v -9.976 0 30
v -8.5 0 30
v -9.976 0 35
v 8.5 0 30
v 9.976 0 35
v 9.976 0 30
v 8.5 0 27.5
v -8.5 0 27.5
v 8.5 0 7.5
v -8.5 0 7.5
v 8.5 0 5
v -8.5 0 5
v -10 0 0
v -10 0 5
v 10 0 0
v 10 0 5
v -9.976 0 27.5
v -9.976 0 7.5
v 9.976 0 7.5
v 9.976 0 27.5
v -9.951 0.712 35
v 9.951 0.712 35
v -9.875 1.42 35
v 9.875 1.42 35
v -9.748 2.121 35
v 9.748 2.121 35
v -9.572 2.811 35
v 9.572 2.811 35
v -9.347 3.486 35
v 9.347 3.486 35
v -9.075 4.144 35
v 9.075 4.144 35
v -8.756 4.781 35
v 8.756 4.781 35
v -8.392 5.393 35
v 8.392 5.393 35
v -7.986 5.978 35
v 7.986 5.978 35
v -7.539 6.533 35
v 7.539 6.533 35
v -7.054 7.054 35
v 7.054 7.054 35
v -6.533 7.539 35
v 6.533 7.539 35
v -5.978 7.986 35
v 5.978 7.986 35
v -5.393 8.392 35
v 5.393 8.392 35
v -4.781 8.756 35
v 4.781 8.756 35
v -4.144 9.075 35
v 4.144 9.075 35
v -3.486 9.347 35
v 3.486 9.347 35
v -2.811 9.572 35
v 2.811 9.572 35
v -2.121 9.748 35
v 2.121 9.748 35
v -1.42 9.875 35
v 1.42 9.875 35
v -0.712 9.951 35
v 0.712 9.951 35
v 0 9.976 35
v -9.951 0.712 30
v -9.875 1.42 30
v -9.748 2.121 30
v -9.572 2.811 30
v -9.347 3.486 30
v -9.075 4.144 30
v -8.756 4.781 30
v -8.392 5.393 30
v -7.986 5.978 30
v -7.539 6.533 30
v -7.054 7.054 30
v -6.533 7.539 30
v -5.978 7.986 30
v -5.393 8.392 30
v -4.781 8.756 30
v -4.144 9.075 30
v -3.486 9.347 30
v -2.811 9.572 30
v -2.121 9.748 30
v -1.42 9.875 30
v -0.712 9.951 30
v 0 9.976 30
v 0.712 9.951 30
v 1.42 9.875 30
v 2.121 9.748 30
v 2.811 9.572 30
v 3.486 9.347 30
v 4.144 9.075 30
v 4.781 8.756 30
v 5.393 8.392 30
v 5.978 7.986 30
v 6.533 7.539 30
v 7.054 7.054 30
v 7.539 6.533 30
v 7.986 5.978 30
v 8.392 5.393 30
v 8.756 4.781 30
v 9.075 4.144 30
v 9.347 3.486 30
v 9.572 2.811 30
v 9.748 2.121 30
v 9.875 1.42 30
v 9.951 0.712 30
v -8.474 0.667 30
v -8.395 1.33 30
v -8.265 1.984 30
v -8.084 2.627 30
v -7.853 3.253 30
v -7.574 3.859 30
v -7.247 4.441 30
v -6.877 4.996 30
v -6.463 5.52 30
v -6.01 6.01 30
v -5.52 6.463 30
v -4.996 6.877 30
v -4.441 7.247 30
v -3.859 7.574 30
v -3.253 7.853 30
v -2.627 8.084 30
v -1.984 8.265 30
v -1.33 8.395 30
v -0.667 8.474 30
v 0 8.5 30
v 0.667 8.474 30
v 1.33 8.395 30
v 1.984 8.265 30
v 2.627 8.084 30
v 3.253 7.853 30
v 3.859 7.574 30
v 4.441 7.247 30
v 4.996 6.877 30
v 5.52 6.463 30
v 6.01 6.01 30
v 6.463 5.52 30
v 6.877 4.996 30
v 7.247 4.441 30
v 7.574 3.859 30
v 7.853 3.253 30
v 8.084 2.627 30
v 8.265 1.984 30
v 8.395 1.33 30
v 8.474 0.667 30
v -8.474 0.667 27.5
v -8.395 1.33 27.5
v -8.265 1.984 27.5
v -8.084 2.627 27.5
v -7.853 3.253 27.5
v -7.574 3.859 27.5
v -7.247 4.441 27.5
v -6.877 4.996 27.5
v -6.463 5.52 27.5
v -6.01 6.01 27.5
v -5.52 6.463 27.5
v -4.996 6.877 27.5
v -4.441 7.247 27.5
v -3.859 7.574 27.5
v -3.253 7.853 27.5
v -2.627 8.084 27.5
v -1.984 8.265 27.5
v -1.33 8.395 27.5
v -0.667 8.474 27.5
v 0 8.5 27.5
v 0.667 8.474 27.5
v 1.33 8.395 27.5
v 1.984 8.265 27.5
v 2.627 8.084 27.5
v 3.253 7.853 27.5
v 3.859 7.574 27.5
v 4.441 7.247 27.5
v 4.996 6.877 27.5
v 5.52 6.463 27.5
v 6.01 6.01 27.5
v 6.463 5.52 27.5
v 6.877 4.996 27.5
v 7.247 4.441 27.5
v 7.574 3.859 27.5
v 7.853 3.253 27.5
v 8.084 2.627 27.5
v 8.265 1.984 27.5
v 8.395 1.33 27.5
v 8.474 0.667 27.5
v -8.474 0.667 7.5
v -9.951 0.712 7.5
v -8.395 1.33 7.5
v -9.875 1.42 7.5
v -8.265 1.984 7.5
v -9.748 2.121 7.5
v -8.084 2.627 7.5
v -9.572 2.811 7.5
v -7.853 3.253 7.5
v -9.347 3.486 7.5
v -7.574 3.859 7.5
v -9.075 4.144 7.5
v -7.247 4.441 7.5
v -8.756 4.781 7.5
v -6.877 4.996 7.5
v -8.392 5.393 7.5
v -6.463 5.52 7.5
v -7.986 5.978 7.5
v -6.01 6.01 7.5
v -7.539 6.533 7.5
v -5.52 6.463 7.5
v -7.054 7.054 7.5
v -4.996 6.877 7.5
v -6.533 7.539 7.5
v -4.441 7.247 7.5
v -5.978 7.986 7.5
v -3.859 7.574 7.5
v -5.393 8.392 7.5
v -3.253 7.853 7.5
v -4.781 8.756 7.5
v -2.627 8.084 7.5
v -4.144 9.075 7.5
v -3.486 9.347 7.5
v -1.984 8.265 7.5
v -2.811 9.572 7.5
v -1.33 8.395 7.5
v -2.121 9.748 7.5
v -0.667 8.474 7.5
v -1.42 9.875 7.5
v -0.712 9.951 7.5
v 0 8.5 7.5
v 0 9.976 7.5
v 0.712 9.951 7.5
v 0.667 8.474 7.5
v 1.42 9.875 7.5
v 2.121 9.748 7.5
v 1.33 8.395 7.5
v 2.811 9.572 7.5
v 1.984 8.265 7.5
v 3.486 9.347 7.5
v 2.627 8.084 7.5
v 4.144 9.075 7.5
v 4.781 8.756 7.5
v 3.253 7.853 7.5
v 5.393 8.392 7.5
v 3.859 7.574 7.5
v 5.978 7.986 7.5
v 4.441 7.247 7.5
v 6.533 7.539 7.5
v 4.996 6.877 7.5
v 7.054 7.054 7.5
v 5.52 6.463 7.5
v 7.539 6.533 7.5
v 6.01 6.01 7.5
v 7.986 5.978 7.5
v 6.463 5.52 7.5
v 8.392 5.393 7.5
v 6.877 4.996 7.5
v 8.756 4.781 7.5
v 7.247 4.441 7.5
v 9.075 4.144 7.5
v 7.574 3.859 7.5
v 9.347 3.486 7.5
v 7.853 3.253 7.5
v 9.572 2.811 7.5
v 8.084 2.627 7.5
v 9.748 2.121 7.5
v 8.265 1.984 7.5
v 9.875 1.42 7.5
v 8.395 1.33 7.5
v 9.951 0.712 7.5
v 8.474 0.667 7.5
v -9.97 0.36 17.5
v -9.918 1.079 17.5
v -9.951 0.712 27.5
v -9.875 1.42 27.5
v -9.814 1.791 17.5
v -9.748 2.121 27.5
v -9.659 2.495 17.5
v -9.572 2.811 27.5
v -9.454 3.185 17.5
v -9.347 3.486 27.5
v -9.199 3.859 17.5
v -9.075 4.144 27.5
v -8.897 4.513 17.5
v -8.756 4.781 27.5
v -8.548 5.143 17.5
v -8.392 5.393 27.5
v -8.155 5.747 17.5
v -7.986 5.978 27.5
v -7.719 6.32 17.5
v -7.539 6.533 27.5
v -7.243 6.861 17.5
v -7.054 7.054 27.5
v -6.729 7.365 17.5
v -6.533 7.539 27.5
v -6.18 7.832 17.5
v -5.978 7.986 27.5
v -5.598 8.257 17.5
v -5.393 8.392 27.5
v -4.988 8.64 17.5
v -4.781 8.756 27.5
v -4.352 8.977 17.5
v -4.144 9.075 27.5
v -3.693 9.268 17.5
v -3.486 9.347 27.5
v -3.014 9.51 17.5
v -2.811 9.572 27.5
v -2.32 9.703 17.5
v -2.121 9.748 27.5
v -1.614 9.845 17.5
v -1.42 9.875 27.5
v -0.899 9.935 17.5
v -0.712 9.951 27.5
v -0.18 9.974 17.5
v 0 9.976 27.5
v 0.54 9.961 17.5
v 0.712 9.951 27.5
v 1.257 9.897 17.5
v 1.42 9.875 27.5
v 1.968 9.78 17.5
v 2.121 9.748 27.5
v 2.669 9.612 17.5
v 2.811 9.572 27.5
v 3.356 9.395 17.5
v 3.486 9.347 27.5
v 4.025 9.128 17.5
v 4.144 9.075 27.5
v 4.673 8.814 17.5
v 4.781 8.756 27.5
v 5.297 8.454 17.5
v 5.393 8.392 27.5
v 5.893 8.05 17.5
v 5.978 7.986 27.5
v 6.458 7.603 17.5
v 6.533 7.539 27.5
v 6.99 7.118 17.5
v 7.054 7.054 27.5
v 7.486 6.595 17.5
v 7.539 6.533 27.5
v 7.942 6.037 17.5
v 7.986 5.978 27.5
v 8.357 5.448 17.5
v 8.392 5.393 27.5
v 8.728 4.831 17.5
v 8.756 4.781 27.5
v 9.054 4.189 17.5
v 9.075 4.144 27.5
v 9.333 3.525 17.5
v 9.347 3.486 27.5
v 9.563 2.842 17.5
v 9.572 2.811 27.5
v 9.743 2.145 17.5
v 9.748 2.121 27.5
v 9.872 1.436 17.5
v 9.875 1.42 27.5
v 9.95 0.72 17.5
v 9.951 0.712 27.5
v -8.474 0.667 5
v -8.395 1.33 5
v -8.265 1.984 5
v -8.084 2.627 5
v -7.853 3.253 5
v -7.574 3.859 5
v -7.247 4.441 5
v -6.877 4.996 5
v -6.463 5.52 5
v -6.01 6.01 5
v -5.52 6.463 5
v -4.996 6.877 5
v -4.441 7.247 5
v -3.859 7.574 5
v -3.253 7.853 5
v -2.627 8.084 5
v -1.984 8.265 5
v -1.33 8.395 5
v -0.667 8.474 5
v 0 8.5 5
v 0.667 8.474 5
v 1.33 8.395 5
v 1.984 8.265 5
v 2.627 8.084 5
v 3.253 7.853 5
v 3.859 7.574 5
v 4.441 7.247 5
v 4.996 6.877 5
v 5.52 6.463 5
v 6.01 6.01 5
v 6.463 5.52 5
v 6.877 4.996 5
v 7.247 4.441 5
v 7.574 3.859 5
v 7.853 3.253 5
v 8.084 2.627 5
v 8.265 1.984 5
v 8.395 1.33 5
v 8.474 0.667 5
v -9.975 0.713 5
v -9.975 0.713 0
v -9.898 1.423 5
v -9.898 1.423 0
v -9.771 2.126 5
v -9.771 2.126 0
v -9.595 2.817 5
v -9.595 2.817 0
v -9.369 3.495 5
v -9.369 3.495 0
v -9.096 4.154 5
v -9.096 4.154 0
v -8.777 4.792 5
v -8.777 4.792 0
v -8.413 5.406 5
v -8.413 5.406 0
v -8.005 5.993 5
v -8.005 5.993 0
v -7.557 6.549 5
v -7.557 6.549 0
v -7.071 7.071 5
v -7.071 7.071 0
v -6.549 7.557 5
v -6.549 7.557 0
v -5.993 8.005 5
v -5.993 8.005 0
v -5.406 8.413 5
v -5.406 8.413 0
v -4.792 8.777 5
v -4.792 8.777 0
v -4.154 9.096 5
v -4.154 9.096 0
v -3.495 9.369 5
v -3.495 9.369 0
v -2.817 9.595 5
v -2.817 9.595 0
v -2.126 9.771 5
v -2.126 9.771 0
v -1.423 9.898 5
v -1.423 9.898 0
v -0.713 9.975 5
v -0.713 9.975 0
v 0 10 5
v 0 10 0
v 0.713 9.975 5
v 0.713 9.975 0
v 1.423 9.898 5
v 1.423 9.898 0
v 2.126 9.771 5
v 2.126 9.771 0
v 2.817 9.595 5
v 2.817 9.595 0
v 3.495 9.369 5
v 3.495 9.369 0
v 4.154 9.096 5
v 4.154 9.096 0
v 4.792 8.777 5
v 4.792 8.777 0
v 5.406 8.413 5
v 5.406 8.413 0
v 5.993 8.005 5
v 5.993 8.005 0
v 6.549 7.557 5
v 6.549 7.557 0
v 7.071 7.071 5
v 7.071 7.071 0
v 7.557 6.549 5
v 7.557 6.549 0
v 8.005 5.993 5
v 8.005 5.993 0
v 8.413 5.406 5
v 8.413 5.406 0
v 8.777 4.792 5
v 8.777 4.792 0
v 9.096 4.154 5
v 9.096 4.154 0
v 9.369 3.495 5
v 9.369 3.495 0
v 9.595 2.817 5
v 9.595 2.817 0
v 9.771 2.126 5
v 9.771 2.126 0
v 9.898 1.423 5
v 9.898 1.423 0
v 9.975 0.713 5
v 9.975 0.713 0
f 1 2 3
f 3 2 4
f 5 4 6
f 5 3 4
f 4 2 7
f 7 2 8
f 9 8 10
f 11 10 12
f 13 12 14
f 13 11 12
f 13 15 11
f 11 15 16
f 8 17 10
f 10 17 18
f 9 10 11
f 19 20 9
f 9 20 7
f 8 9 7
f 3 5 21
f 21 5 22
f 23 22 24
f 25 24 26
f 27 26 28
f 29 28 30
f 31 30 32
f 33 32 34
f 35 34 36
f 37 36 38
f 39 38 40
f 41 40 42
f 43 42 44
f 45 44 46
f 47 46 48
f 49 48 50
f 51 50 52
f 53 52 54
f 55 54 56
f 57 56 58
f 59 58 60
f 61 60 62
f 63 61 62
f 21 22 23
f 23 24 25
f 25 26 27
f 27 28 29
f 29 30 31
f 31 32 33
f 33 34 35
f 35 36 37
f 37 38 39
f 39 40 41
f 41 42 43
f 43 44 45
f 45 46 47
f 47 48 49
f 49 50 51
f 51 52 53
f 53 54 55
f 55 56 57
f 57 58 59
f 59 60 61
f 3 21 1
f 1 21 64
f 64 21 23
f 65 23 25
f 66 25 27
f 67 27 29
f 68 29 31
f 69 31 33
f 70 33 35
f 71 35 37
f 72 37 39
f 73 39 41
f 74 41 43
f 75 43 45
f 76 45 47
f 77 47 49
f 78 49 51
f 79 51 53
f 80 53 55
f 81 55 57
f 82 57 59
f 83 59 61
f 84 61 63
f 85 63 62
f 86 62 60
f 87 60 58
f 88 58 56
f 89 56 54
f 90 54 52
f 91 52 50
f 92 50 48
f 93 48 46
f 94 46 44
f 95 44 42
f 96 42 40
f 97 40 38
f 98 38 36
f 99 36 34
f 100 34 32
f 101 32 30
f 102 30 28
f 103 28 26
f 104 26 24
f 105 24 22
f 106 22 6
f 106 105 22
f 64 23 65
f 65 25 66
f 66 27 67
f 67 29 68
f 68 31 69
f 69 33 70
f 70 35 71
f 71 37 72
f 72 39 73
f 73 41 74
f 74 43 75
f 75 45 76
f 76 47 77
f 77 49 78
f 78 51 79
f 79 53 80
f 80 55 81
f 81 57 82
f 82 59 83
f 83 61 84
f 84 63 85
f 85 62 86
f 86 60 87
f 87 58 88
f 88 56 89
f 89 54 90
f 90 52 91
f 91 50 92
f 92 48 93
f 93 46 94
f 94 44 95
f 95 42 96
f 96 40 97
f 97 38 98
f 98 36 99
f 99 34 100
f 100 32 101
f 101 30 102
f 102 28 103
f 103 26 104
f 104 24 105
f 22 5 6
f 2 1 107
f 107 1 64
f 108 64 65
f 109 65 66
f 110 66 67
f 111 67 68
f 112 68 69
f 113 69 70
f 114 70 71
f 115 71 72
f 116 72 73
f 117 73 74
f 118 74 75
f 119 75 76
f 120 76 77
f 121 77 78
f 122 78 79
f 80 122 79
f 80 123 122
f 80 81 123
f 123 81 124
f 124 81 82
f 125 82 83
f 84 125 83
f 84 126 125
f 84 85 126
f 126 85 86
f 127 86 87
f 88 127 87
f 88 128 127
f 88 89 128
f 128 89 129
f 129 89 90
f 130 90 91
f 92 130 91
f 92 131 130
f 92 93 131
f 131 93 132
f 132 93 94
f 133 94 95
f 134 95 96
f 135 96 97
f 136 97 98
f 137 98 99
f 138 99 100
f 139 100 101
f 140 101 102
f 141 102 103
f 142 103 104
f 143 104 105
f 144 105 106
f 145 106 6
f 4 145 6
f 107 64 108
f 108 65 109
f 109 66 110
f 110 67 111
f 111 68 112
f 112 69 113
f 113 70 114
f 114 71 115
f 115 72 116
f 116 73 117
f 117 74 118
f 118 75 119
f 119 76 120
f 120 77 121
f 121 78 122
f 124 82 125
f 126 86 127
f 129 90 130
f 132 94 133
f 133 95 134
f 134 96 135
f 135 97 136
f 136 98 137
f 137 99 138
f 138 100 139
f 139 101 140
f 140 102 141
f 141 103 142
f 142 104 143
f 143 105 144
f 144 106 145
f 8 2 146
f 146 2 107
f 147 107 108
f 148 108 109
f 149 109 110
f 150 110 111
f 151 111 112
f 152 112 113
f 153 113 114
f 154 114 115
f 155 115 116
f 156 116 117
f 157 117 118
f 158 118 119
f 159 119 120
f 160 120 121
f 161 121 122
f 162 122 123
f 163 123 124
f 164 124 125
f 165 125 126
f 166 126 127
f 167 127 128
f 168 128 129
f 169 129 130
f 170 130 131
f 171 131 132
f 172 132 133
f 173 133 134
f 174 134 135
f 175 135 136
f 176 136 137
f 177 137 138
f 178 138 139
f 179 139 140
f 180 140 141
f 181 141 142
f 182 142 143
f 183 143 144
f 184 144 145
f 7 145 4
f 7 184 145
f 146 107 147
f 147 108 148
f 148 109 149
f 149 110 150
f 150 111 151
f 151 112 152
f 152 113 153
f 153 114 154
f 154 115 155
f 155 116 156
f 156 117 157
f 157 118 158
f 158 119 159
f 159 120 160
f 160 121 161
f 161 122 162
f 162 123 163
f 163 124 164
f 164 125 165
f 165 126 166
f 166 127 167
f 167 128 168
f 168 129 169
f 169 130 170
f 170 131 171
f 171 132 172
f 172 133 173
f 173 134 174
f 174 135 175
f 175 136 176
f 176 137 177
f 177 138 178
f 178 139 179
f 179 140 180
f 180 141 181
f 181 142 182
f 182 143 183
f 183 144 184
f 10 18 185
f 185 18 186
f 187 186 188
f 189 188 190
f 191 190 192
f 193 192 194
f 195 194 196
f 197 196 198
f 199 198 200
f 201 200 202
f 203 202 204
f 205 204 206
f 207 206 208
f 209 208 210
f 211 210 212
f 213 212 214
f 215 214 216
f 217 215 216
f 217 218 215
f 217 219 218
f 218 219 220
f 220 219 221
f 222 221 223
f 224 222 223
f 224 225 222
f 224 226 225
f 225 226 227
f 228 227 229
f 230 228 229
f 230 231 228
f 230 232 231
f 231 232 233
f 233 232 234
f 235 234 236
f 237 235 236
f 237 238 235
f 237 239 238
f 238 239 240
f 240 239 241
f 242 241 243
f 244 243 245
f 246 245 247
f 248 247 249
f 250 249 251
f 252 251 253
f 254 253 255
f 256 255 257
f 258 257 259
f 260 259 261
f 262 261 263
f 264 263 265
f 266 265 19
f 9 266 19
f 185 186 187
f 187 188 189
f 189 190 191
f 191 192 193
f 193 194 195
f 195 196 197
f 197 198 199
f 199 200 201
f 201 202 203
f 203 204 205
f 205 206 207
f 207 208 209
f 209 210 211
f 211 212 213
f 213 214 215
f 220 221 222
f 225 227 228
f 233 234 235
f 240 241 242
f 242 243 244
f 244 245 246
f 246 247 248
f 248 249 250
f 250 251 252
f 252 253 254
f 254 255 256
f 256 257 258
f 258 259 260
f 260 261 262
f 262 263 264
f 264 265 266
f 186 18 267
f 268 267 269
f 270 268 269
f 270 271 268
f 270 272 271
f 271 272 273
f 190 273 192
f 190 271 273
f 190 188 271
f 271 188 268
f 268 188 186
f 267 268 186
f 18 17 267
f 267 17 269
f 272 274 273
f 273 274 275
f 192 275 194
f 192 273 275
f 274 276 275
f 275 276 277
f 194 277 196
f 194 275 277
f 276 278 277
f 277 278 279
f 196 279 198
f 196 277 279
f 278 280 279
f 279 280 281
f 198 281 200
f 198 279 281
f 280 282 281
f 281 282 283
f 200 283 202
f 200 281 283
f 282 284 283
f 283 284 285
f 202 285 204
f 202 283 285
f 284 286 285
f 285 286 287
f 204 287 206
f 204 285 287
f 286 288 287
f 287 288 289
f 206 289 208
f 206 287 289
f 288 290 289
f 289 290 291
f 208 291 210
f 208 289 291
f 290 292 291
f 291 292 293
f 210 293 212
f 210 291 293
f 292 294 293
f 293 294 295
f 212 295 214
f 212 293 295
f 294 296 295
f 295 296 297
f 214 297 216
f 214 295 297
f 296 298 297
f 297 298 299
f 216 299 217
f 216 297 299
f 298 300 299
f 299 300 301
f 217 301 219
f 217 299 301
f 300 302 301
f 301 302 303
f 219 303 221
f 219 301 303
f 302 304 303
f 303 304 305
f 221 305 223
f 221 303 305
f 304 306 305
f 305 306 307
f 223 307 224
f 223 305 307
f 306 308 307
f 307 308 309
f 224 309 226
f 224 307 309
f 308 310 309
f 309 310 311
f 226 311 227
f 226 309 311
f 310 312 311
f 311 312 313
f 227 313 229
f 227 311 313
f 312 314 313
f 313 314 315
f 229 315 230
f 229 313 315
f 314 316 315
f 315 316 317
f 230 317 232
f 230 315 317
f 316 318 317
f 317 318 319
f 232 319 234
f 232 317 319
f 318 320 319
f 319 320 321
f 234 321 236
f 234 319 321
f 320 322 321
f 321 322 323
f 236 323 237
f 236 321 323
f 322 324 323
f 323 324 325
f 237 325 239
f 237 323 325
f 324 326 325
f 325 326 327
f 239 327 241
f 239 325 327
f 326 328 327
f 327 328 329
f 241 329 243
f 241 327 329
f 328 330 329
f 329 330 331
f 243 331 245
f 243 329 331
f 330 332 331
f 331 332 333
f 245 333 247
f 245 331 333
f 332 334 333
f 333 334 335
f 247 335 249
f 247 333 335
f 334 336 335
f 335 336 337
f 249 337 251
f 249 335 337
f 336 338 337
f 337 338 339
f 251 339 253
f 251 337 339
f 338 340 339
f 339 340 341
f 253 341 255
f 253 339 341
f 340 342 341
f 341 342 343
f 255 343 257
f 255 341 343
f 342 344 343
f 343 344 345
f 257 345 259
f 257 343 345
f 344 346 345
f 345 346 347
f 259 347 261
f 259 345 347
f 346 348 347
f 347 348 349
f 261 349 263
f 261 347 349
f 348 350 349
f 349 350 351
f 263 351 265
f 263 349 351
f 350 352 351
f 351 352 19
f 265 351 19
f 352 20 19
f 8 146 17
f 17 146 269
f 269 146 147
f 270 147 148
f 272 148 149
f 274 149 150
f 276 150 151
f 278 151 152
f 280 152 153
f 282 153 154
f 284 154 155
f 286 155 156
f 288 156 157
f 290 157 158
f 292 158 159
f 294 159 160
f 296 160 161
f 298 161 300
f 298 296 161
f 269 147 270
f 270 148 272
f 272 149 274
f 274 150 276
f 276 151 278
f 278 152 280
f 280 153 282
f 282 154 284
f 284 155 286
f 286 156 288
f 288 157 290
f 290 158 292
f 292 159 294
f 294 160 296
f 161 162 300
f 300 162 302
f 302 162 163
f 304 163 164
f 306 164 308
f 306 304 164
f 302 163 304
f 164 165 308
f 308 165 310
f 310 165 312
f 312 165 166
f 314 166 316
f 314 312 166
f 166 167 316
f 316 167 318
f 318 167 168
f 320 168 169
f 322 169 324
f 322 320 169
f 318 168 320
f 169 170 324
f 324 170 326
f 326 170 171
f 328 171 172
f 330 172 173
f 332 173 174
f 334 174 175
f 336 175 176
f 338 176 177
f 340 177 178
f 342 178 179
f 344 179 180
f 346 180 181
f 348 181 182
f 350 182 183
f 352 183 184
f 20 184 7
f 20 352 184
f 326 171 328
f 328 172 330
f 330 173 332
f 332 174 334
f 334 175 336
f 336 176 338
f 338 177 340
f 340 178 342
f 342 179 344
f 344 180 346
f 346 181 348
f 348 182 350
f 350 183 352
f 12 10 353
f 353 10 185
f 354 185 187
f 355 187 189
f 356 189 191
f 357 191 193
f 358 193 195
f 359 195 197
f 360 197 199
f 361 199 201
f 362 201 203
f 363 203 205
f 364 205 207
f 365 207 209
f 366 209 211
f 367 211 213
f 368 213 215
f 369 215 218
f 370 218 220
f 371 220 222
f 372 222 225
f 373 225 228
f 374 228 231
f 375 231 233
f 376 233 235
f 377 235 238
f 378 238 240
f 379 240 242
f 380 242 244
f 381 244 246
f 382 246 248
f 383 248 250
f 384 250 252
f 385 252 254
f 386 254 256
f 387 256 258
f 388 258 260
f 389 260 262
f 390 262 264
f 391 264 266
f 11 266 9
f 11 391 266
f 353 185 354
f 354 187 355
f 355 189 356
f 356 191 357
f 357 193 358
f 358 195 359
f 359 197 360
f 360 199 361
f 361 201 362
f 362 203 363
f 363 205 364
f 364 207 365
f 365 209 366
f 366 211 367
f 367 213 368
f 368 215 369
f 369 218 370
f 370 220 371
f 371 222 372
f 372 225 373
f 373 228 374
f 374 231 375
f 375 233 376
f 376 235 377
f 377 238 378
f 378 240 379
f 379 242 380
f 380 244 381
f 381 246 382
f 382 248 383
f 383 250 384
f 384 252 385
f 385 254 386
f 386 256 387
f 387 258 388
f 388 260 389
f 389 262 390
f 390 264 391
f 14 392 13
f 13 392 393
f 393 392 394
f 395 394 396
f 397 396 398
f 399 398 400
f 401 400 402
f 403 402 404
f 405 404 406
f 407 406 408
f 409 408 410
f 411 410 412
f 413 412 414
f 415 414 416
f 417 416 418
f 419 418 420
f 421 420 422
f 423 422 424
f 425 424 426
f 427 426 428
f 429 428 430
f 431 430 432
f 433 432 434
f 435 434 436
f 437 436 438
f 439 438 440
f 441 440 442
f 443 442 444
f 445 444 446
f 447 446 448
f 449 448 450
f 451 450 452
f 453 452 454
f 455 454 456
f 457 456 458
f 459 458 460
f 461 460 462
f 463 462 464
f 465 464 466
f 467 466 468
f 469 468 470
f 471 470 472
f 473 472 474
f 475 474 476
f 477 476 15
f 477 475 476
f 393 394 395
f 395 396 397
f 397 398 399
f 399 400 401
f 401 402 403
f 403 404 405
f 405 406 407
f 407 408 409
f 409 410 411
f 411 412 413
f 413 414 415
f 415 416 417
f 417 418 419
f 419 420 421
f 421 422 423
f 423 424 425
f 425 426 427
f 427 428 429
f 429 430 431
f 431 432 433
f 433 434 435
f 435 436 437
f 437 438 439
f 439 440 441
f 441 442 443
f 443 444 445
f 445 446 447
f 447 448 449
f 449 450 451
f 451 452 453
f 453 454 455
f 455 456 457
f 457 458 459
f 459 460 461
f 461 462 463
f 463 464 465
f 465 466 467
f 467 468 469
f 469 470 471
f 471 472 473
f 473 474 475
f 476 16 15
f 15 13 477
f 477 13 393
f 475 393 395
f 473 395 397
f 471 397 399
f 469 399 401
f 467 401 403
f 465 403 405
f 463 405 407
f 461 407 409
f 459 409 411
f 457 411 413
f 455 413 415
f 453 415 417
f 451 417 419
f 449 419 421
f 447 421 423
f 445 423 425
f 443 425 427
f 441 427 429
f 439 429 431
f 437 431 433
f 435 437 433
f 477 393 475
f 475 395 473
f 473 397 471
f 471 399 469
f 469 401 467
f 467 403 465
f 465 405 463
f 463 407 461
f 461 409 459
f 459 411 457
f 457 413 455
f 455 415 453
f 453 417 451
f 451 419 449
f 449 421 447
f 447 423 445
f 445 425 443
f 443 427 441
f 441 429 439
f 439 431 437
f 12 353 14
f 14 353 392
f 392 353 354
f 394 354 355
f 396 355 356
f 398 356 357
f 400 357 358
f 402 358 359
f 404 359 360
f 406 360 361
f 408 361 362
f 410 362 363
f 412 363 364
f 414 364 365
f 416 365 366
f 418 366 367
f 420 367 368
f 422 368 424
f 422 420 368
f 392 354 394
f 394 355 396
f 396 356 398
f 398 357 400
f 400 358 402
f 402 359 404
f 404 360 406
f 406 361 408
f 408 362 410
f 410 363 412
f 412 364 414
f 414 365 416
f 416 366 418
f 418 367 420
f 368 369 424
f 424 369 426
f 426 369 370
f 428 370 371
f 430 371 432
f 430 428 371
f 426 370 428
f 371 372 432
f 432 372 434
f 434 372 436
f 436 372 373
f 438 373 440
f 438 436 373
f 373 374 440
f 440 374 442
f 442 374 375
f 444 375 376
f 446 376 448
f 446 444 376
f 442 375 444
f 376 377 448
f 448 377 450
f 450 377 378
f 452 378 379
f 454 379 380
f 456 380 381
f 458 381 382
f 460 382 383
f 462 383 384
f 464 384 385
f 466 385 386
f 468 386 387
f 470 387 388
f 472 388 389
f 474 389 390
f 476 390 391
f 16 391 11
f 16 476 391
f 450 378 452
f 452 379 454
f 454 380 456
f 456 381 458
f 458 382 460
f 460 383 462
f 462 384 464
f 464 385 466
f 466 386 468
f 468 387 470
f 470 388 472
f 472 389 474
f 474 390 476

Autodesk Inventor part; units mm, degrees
ref_plane "YZ Plane" through (0, 0, 0) normal (1, 0, 0) x (0, 1, 0)
ref_plane "XZ Plane" through (0, 0, 0) normal (0, 1, 0) x (-1, 0, 0)
ref_plane "XY Plane" through (0, 0, 0) normal (0, 0, 1) x (1, 0, 0)
sketch "Sketch1" plane through (0, 0, 0) normal (0, 0, 1) x (1, 0, 0)
  circle A0 centre (0, 0) radius 10
  dimension "d0" = 20
extrude "Extrusion1" add sketch "Sketch1" along normal blind 5
sketch "Sketch2" plane through (0, 0, 5) normal (0, 0, 1) x (1, 0, 0)
  circle A0 centre (0, 0) radius 8.5
  dimension "d3" = 17
extrude "Extrusion2" add sketch "Sketch2" along normal blind 2.5
sketch "Sketch3" plane through (0, 0, 7.5) normal (0, 0, 1) x (1, 0, 0)
  circle A0 centre (0, 0) radius 9.9761
extrude "Extrusion3" add sketch "Sketch3" along normal blind 20
sketch "Sketch4" plane through (0, 0, 27.5) normal (0, 0, 1) x (1, 0, 0)
  circle A0 centre (0, 0) radius 8.5
extrude "Extrusion4" add sketch "Sketch4" along normal blind 2.5
sketch "Sketch5" plane through (0, 0, 30) normal (0, 0, 1) x (1, 0, 0)
  circle A0 centre (0, 0) radius 9.9761
extrude "Extrusion5" add sketch "Sketch5" along normal blind 5
sketch "Sketch6" plane through (0, 0, 35) normal (0, 0, 1) x (1, 0, 0)
  line L0 (-13.1636, 0) -> (14.8956, 0)
  line L1 (14.8956, 0) -> (14.8956, -10.45)
  line L2 (14.8956, -10.45) -> (-13.1636, -10.45)
  line L3 (-13.1636, -10.45) -> (-13.1636, 0)
  point P0 (0, 0)
extrude "Extrusion6" cut sketch "Sketch6" against normal blind 35
properties part number "Top Pully"
